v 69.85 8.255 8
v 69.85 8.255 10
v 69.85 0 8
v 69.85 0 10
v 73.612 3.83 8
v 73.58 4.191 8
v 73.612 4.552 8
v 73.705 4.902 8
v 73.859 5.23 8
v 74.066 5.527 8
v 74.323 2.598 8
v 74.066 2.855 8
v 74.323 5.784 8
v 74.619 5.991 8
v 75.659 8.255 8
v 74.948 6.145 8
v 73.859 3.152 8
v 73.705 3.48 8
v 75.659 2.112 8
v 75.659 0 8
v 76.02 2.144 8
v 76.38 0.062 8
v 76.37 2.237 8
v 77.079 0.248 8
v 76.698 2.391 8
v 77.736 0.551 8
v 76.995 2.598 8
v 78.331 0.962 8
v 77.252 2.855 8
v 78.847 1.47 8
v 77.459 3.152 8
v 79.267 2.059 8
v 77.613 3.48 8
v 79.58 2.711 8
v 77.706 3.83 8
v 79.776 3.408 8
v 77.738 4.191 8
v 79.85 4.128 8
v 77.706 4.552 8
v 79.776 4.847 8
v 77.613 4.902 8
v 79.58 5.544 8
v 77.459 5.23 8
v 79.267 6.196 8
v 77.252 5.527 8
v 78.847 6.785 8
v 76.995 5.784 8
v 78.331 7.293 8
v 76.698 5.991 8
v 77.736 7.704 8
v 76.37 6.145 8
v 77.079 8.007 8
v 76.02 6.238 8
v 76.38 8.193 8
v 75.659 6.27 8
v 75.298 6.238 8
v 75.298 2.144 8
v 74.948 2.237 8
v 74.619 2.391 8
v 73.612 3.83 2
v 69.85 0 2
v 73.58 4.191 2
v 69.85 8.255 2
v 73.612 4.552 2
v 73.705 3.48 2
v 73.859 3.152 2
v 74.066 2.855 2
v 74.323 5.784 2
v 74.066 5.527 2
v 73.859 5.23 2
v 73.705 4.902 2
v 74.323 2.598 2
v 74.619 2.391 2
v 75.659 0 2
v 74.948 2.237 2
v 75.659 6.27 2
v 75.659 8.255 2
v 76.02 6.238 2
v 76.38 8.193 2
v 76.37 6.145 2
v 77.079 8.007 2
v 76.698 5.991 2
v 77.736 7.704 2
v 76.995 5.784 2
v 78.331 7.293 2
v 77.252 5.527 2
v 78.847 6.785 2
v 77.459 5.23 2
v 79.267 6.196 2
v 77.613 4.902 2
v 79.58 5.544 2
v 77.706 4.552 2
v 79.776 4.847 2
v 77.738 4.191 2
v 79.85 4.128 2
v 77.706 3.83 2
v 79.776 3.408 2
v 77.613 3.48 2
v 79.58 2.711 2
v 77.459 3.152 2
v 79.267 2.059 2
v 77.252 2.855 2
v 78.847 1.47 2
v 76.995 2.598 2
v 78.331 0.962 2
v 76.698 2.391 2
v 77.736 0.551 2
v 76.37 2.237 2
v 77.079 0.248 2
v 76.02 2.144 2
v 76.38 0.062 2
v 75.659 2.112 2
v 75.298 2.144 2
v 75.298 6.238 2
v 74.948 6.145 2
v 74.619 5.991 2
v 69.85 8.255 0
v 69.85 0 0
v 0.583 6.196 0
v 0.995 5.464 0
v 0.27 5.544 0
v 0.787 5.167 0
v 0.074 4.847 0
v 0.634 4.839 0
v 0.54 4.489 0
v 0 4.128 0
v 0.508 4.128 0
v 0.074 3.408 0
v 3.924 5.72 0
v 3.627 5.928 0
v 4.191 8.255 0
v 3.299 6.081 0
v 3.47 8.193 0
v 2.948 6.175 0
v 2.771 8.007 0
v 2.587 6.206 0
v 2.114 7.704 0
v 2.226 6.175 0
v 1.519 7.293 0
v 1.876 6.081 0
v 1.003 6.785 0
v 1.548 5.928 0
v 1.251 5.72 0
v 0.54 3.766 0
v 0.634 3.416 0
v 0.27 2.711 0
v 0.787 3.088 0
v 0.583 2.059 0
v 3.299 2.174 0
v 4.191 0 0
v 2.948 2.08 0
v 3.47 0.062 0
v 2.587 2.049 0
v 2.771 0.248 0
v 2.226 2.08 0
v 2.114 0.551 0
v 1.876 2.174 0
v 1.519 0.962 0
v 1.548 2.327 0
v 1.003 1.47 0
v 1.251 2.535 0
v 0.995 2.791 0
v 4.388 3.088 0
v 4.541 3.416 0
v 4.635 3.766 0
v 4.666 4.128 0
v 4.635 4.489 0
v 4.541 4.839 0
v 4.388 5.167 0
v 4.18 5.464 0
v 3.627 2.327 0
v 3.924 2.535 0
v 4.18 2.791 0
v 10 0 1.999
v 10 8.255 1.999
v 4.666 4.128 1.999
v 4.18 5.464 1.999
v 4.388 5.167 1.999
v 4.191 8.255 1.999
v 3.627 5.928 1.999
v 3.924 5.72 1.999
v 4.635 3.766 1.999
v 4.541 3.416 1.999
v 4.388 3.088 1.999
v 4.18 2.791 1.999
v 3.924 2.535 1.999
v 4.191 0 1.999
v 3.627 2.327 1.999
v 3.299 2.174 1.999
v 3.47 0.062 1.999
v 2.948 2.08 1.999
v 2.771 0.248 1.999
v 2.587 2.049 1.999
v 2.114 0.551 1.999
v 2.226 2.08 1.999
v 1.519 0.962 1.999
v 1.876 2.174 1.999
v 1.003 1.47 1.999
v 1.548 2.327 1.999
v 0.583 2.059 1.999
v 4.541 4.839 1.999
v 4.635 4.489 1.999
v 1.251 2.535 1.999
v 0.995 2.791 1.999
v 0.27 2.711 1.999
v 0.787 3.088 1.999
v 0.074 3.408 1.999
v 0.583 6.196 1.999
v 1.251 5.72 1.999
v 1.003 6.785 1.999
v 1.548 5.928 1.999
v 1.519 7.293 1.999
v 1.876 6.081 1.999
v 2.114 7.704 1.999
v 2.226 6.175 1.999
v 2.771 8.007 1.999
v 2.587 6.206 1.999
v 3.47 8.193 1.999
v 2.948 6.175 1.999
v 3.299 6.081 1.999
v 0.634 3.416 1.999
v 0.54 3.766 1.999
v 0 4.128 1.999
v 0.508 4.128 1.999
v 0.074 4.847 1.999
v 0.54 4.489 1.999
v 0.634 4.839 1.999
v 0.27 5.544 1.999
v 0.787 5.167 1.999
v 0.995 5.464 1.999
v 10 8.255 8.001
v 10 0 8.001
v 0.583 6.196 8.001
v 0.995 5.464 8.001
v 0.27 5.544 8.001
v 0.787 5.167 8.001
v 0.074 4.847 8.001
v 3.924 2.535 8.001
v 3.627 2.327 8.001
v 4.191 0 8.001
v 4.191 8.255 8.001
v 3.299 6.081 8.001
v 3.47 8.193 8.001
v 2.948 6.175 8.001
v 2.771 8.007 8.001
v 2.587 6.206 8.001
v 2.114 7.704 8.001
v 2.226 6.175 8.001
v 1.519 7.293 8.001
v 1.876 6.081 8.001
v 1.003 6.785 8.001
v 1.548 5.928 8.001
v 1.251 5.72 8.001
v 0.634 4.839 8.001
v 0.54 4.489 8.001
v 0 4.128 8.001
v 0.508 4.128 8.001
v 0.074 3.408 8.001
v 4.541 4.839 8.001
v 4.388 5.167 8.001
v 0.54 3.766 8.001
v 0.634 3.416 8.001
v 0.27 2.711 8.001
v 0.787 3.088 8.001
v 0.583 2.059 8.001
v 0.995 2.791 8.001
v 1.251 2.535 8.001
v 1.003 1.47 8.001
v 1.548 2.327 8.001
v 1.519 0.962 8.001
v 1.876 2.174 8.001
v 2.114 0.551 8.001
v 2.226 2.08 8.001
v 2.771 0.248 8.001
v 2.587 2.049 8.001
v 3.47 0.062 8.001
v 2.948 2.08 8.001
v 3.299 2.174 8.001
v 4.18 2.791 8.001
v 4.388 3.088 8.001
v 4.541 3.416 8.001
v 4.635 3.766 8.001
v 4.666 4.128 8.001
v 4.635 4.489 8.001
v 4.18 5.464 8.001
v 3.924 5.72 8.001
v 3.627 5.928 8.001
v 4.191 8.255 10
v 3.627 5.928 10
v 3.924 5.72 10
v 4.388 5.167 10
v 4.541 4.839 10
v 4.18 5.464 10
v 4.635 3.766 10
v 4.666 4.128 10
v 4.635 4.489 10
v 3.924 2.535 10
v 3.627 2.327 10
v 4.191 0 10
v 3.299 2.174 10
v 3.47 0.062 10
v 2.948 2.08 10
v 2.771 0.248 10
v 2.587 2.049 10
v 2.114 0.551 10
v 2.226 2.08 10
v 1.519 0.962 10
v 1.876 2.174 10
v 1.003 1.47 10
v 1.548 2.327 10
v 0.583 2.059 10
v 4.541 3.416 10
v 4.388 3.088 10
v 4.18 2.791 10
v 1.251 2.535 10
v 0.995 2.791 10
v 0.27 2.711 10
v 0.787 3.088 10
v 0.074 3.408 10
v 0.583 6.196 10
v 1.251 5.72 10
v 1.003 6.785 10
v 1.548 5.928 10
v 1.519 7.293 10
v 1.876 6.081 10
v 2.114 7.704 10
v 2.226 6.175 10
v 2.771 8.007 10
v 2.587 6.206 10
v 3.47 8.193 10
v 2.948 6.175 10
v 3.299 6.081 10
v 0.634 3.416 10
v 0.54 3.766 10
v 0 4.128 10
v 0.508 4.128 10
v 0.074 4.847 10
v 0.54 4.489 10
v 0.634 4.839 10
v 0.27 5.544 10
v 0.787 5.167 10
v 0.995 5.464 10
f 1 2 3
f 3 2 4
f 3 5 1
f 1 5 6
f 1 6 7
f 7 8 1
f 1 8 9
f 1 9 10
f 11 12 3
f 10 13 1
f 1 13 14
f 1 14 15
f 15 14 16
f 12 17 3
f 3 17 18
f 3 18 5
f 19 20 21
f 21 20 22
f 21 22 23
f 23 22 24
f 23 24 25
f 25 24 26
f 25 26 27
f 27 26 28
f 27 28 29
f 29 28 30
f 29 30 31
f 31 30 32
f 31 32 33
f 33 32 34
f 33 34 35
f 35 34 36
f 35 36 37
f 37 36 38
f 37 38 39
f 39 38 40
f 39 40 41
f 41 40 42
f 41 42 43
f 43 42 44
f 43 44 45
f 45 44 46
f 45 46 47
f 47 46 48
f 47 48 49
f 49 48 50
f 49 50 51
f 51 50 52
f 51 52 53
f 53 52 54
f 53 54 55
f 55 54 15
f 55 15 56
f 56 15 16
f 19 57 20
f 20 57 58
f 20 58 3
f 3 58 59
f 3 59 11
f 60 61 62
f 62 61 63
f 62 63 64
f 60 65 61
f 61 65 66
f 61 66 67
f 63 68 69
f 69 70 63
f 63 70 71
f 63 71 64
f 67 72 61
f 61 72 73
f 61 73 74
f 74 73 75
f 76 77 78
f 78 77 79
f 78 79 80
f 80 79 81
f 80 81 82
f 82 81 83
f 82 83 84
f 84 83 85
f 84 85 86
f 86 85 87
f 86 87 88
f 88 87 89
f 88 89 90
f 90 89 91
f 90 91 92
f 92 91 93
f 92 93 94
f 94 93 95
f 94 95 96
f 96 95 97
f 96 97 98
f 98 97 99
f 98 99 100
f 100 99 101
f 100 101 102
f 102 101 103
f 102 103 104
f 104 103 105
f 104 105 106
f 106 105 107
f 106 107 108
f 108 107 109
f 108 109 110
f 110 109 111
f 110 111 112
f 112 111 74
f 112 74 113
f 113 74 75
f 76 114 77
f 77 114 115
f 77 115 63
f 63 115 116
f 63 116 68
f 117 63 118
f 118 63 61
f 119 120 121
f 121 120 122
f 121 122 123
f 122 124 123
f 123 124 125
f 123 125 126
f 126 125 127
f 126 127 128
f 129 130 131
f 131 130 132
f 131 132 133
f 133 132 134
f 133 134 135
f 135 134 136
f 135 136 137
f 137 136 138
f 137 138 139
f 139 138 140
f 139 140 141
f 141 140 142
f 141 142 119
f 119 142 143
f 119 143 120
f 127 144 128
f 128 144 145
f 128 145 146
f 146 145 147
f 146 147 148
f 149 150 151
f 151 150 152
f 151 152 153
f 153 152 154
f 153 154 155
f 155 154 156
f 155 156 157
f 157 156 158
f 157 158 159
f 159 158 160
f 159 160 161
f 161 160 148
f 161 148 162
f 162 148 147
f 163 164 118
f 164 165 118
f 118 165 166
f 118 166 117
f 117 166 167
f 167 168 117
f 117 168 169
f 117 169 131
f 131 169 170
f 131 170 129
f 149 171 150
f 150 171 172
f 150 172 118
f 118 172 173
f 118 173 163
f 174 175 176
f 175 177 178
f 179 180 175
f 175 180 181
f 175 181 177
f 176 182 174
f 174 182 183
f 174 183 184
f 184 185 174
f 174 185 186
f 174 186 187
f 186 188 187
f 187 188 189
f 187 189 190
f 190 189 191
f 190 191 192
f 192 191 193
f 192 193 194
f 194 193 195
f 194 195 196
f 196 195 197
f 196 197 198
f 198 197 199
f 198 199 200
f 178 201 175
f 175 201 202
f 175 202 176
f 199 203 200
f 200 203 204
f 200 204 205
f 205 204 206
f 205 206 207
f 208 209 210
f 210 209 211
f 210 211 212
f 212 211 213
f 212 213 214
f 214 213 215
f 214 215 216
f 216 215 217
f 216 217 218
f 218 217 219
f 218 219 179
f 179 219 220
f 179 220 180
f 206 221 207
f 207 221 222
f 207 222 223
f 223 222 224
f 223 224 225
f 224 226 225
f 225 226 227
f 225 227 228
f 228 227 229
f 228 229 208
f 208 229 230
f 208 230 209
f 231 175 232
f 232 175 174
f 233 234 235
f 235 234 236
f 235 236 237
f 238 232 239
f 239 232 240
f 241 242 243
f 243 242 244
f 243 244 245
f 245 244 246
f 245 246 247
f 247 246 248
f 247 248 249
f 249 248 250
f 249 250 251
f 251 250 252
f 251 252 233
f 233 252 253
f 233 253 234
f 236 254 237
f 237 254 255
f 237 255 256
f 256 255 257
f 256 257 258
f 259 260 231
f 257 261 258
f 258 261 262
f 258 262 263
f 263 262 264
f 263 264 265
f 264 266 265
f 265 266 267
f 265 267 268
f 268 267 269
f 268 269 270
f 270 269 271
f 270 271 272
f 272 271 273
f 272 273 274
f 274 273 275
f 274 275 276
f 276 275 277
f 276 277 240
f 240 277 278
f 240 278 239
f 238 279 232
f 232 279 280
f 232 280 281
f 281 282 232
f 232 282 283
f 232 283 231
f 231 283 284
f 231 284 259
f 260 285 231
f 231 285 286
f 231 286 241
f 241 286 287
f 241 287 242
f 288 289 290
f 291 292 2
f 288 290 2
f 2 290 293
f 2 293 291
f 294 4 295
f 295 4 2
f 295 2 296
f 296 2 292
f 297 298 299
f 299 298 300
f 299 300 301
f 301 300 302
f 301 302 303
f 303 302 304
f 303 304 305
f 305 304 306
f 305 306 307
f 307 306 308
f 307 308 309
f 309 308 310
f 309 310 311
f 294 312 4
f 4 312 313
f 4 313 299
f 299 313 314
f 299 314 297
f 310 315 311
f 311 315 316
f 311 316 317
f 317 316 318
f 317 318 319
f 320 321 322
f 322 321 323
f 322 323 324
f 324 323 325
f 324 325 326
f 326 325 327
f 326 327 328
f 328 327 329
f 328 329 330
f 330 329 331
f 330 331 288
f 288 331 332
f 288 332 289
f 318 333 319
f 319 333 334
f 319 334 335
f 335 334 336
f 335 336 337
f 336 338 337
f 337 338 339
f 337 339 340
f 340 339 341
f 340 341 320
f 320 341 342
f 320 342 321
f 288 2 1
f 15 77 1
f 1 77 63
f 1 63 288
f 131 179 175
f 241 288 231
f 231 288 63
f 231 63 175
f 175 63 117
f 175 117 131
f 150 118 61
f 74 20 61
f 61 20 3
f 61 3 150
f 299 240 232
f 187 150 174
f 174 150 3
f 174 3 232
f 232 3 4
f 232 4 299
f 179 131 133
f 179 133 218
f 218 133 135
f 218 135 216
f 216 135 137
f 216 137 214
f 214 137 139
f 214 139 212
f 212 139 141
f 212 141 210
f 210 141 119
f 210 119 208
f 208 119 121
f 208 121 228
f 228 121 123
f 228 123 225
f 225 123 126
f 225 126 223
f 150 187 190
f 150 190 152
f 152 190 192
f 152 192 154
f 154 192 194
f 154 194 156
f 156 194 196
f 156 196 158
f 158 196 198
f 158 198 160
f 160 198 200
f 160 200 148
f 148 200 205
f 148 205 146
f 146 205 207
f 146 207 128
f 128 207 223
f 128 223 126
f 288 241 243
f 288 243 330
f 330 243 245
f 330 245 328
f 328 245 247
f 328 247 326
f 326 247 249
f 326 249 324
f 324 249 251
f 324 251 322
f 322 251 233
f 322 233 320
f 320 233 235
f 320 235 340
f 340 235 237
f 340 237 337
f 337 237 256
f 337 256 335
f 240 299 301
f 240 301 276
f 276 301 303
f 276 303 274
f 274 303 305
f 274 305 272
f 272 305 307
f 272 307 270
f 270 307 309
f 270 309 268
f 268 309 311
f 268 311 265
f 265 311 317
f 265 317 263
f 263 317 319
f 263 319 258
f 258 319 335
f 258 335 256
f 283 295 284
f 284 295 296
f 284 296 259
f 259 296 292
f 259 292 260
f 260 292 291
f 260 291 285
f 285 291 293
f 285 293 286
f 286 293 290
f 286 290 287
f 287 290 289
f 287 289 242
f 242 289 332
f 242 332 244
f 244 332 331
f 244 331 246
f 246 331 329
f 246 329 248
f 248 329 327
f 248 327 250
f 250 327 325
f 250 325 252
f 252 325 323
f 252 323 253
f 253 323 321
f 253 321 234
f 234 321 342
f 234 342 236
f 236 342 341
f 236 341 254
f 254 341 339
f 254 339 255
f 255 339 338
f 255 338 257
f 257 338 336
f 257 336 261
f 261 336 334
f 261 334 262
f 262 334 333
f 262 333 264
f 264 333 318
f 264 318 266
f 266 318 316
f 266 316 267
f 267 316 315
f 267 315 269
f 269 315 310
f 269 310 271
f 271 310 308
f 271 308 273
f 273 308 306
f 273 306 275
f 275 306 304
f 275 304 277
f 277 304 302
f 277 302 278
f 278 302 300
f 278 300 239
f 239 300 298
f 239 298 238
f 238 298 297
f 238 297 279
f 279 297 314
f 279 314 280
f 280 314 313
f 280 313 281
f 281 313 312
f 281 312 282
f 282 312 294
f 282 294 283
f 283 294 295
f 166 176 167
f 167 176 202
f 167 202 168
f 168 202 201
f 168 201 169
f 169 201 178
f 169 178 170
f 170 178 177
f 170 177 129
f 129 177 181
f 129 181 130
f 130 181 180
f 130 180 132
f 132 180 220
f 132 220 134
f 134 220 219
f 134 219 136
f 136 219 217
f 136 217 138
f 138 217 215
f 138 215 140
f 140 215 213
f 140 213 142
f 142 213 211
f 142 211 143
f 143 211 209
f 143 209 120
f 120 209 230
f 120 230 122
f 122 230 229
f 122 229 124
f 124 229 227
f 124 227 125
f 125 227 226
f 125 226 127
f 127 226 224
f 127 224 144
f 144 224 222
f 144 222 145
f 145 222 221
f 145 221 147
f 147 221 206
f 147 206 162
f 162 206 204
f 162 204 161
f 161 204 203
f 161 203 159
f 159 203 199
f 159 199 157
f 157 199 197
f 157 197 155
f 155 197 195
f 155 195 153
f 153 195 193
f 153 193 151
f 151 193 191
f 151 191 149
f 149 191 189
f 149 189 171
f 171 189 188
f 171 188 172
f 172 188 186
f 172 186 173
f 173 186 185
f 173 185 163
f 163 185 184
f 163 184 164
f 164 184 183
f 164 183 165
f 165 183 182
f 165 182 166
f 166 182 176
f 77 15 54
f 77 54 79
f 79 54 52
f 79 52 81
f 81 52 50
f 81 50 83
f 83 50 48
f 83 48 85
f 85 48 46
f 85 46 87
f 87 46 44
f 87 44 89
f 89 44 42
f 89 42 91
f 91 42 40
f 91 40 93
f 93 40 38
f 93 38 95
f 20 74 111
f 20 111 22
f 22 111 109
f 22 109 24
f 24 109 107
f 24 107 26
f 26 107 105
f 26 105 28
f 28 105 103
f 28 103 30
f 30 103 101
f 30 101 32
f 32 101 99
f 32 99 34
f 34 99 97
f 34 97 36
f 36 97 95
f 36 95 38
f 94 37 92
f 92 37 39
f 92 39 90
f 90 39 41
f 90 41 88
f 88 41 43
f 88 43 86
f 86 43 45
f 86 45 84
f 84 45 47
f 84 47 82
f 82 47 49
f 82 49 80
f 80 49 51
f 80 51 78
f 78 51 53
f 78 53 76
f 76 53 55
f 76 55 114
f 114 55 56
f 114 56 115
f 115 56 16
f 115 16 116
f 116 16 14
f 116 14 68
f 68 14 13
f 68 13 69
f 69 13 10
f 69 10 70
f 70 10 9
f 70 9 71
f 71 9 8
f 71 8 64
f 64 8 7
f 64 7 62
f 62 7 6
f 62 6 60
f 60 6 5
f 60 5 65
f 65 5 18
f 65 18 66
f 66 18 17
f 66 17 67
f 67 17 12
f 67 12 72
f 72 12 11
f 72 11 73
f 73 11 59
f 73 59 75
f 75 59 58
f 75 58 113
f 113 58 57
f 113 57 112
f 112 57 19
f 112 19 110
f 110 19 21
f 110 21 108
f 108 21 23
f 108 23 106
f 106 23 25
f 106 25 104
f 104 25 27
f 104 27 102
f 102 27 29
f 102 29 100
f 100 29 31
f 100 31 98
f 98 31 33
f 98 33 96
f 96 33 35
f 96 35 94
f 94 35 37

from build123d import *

# Parameters (mm, degrees)
BOSS_EXTRUDE1_DEPTH = 8.255
FILLET1_R           = 4.191
SKETCH2_R           = 2.07899
CUT_EXTRUDE1_DEPTH  = 81.896006892
FILLET2_R           = 4.191
SKETCH3_R           = 2.07899
CUT_EXTRUDE2_DEPTH  = 8.255


with BuildPart() as part:
    # Sketch1 → Boss-Extrude1 (new body)
    with BuildSketch(Plane(origin=(0, 0, 0), x_dir=(1, 0, 0), z_dir=(0, 1, 0))):
        Polygon((69.85, -8.001), (69.85, -9.99998), (0, -9.99998), (0, -8.001), (9.99998, -8.001), (9.99998, -1.99898), (0, -1.99898), (0, 0), (69.85, 0), (69.85, -1.99898), (79.84998, -1.99898), (79.84998, -8.001), align=None)
    extrude(amount=BOSS_EXTRUDE1_DEPTH)

    # Fillet1
    # the kernel refuses this fillet: 4.191 mm, written as the material it takes off along each edge
    with BuildSketch(Plane(origin=(0, 0, 12.47648), x_dir=(0, 1, 0), z_dir=(0, 0, -1)), Plane(origin=(0, 0, 20.47748), x_dir=(0, 1, 0), z_dir=(0, 0, -1))) as fillet1_piece_1:
        with BuildLine():
            CenterArc((FILLET1_R, FILLET1_R), FILLET1_R, 180, 90)
            Line((0, FILLET1_R), (0, 0))
            Line((0, 0), (FILLET1_R, 0))
        make_face()
    extrude(amount=22.95398, mode=Mode.SUBTRACT)
    with BuildSketch(Plane(origin=(0, 8.255, 12.47648), x_dir=(0, -1, 0), z_dir=(0, 0, -1)), Plane(origin=(0, 8.255, 20.47748), x_dir=(0, -1, 0), z_dir=(0, 0, -1))) as fillet1_piece_2:
        with BuildLine():
            CenterArc((FILLET1_R, -FILLET1_R), FILLET1_R, 90, 90)
            Line((0, -FILLET1_R), (0, 0))
            Line((0, 0), (FILLET1_R, 0))
        make_face()
    extrude(amount=22.95398, mode=Mode.SUBTRACT)

    # Sketch2 → Cut-Extrude1 (cut, through all)
    with BuildSketch(Plane.XY.offset(9.99998)):
        with Locations((2.587471088, 4.1275)):
            Circle(SKETCH2_R)
    extrude(amount=-CUT_EXTRUDE1_DEPTH, mode=Mode.SUBTRACT)

    # Fillet2
    # the kernel refuses this fillet: 4.191 mm, written as the material it takes off along each edge
    with BuildSketch(Plane(origin=(79.84998, 0, -8.47852), x_dir=(-1, 0, 0), z_dir=(0, 0, 1))) as fillet2_piece_1:
        with BuildLine():
            CenterArc((FILLET2_R, -FILLET2_R), FILLET2_R, 90, 90)
            Line((0, -FILLET2_R), (0, 0))
            Line((0, 0), (FILLET2_R, 0))
        make_face()
    extrude(amount=26.95702, mode=Mode.SUBTRACT)
    with BuildSketch(Plane(origin=(79.84998, 8.255, -8.47852), x_dir=(-1, 0, 0), z_dir=(0, 0, 1))) as fillet2_piece_2:
        with BuildLine():
            CenterArc((FILLET2_R, FILLET2_R), FILLET2_R, 180, 90)
            Line((0, FILLET2_R), (0, 0))
            Line((0, 0), (FILLET2_R, 0))
        make_face()
    extrude(amount=26.95702, mode=Mode.SUBTRACT)

    # Sketch3 → Cut-Extrude2 (cut)
    with BuildSketch(Plane.XY.offset(8.001)):
        with Locations((75.65898, 4.191)):
            Circle(SKETCH3_R)
    extrude(amount=-CUT_EXTRUDE2_DEPTH, mode=Mode.SUBTRACT)


solid = part.part
